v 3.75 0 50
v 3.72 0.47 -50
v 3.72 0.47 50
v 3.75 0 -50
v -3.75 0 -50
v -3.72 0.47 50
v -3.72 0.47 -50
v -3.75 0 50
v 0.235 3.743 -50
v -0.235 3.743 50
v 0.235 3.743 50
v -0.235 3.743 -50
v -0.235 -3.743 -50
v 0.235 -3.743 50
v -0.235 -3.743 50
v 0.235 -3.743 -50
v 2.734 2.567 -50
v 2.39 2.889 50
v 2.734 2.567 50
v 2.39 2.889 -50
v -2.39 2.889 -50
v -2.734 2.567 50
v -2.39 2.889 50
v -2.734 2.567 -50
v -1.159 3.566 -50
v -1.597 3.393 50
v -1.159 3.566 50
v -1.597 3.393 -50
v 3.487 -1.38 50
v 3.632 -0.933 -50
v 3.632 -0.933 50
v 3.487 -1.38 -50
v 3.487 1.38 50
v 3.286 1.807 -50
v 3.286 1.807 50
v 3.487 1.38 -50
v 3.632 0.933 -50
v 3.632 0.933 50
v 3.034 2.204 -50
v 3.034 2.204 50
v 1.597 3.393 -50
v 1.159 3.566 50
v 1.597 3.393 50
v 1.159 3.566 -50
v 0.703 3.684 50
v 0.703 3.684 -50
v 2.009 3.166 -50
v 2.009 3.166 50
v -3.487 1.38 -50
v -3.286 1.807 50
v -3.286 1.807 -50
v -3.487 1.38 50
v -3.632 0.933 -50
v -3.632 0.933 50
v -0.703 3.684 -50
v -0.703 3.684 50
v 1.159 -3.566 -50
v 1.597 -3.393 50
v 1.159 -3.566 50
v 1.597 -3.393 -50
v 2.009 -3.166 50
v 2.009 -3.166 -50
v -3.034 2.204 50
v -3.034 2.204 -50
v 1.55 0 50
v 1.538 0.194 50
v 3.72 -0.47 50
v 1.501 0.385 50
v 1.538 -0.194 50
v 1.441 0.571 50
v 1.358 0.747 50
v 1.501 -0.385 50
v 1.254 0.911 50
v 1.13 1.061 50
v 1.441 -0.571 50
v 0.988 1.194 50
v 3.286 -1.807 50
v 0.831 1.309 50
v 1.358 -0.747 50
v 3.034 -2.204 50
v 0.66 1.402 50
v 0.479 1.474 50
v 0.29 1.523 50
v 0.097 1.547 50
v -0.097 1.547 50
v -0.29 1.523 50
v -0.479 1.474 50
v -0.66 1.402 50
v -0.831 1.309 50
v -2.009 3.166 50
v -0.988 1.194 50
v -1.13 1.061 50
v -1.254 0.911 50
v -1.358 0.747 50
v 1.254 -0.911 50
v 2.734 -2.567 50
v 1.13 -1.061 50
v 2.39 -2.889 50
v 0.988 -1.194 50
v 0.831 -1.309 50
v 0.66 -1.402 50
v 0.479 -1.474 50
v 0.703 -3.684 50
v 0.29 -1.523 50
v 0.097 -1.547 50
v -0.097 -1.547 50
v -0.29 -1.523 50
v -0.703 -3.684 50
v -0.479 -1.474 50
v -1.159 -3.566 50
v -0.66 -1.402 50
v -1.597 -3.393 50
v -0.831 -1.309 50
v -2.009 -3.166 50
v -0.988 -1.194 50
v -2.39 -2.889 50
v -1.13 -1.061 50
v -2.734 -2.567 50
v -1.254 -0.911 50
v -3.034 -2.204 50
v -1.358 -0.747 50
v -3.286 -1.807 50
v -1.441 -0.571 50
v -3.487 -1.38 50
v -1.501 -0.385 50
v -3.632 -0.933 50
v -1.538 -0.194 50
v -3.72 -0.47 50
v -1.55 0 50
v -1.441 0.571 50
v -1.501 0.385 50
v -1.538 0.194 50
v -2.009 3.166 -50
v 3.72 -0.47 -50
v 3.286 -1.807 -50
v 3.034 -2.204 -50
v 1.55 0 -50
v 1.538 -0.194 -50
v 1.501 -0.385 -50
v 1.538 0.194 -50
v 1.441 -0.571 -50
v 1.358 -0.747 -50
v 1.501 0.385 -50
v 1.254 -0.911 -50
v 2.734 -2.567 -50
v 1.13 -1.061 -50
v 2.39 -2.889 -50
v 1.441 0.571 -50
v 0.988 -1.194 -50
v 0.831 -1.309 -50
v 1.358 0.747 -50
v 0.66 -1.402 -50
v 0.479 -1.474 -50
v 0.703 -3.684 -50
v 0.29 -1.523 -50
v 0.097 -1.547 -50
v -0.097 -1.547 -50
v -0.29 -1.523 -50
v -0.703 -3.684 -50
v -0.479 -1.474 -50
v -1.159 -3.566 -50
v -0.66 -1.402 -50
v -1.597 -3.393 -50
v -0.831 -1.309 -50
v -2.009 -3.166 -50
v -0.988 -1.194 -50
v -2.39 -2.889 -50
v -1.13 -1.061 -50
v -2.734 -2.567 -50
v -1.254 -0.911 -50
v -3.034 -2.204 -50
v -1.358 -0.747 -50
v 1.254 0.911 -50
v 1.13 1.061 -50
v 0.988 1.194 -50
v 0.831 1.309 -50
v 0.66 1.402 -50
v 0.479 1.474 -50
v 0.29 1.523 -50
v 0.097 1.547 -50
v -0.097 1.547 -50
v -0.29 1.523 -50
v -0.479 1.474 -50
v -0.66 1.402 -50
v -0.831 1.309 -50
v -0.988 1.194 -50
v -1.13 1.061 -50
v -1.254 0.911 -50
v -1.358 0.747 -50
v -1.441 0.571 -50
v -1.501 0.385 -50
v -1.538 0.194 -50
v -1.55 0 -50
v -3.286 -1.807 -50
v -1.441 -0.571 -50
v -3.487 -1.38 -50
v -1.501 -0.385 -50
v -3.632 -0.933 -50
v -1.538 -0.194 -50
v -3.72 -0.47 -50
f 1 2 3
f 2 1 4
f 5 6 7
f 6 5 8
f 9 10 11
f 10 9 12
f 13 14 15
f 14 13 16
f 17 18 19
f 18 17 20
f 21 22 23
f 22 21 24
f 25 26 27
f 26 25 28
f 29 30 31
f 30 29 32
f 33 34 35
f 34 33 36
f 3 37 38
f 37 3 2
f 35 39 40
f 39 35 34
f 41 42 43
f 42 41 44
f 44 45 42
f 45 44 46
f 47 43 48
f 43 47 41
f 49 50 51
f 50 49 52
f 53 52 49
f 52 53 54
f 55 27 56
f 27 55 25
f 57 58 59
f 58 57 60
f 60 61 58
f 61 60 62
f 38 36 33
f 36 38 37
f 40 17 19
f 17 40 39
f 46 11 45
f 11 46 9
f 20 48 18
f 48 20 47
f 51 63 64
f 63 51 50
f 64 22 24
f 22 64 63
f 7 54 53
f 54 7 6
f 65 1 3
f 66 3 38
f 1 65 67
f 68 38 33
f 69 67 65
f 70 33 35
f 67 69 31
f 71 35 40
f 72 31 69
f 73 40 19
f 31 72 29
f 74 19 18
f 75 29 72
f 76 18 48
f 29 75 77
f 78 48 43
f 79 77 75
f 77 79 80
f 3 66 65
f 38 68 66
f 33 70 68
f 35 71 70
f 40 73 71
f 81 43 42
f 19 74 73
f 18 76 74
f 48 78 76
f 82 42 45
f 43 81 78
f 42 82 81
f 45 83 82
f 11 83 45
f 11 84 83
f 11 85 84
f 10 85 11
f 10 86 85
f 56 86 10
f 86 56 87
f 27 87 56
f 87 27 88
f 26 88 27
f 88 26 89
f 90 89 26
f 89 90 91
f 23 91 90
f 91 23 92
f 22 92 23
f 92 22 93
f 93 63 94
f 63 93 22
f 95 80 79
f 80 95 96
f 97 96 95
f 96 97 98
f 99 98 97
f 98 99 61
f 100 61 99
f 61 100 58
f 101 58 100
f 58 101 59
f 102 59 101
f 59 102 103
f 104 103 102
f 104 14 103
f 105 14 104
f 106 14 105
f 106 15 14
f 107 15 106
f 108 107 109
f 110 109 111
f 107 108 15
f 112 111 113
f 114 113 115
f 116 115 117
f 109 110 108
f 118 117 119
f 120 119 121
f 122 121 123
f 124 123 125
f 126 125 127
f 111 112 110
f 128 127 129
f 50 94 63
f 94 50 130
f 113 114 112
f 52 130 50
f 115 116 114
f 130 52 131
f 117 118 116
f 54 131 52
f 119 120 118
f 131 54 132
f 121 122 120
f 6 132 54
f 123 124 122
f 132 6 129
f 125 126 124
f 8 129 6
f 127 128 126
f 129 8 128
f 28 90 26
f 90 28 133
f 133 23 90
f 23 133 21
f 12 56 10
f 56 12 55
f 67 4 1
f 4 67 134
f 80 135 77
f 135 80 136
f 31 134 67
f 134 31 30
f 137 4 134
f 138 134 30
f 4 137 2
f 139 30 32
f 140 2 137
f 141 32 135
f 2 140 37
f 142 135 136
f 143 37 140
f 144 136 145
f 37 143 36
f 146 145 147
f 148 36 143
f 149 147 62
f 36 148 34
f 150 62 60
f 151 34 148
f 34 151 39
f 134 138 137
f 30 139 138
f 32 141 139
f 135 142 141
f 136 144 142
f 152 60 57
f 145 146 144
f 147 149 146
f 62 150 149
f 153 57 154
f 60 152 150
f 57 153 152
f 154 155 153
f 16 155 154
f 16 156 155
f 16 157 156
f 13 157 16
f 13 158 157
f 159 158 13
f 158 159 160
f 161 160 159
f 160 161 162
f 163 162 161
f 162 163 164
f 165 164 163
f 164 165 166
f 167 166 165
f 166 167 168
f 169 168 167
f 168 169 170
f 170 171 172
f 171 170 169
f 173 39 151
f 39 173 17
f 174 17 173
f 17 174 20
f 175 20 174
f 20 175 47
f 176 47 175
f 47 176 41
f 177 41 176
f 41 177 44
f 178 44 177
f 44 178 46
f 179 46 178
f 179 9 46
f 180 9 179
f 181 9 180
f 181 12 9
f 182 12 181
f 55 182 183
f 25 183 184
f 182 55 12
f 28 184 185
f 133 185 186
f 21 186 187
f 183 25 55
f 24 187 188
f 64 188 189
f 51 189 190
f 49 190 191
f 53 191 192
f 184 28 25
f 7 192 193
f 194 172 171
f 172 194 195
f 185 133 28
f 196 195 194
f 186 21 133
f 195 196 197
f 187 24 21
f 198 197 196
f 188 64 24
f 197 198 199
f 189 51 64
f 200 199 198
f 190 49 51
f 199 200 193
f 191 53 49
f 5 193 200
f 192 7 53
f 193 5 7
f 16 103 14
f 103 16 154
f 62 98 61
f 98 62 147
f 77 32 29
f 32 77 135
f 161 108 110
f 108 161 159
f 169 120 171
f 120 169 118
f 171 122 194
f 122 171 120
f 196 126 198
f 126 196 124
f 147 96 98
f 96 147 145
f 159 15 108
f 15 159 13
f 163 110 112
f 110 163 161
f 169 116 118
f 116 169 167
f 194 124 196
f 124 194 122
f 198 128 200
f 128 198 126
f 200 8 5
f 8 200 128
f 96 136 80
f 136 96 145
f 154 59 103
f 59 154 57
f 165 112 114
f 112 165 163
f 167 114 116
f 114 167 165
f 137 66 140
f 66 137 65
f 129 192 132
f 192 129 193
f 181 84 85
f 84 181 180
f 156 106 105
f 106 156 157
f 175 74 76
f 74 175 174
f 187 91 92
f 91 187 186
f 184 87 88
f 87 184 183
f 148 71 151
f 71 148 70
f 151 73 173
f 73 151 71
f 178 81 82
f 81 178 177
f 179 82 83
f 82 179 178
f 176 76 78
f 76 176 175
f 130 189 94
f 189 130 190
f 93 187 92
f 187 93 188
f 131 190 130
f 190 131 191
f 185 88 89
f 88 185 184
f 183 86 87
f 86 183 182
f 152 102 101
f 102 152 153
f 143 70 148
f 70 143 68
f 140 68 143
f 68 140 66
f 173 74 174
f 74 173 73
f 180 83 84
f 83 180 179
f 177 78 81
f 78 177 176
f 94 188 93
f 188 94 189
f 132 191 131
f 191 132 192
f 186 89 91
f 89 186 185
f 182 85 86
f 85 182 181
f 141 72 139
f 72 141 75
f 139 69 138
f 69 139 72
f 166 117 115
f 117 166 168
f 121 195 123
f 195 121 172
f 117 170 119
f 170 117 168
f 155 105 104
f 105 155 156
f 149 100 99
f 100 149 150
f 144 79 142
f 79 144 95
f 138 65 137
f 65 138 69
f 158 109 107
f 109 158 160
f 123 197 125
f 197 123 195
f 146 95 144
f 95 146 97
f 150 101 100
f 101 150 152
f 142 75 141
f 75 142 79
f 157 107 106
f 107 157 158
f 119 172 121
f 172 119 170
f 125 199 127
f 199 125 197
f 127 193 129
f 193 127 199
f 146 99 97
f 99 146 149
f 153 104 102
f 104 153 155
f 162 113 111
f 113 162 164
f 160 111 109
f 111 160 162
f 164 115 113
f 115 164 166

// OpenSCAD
$fn = 50;


difference() {
	union() {
		translate(v = [0, 0, -50.0000000000]) {
			cylinder(h = 100, r = 3.7500000000);
		}
	}
	union() {
		translate(v = [0, 0, -100.0000000000]) {
			cylinder(h = 200, r = 1.5500000000);
		}
	}
}
